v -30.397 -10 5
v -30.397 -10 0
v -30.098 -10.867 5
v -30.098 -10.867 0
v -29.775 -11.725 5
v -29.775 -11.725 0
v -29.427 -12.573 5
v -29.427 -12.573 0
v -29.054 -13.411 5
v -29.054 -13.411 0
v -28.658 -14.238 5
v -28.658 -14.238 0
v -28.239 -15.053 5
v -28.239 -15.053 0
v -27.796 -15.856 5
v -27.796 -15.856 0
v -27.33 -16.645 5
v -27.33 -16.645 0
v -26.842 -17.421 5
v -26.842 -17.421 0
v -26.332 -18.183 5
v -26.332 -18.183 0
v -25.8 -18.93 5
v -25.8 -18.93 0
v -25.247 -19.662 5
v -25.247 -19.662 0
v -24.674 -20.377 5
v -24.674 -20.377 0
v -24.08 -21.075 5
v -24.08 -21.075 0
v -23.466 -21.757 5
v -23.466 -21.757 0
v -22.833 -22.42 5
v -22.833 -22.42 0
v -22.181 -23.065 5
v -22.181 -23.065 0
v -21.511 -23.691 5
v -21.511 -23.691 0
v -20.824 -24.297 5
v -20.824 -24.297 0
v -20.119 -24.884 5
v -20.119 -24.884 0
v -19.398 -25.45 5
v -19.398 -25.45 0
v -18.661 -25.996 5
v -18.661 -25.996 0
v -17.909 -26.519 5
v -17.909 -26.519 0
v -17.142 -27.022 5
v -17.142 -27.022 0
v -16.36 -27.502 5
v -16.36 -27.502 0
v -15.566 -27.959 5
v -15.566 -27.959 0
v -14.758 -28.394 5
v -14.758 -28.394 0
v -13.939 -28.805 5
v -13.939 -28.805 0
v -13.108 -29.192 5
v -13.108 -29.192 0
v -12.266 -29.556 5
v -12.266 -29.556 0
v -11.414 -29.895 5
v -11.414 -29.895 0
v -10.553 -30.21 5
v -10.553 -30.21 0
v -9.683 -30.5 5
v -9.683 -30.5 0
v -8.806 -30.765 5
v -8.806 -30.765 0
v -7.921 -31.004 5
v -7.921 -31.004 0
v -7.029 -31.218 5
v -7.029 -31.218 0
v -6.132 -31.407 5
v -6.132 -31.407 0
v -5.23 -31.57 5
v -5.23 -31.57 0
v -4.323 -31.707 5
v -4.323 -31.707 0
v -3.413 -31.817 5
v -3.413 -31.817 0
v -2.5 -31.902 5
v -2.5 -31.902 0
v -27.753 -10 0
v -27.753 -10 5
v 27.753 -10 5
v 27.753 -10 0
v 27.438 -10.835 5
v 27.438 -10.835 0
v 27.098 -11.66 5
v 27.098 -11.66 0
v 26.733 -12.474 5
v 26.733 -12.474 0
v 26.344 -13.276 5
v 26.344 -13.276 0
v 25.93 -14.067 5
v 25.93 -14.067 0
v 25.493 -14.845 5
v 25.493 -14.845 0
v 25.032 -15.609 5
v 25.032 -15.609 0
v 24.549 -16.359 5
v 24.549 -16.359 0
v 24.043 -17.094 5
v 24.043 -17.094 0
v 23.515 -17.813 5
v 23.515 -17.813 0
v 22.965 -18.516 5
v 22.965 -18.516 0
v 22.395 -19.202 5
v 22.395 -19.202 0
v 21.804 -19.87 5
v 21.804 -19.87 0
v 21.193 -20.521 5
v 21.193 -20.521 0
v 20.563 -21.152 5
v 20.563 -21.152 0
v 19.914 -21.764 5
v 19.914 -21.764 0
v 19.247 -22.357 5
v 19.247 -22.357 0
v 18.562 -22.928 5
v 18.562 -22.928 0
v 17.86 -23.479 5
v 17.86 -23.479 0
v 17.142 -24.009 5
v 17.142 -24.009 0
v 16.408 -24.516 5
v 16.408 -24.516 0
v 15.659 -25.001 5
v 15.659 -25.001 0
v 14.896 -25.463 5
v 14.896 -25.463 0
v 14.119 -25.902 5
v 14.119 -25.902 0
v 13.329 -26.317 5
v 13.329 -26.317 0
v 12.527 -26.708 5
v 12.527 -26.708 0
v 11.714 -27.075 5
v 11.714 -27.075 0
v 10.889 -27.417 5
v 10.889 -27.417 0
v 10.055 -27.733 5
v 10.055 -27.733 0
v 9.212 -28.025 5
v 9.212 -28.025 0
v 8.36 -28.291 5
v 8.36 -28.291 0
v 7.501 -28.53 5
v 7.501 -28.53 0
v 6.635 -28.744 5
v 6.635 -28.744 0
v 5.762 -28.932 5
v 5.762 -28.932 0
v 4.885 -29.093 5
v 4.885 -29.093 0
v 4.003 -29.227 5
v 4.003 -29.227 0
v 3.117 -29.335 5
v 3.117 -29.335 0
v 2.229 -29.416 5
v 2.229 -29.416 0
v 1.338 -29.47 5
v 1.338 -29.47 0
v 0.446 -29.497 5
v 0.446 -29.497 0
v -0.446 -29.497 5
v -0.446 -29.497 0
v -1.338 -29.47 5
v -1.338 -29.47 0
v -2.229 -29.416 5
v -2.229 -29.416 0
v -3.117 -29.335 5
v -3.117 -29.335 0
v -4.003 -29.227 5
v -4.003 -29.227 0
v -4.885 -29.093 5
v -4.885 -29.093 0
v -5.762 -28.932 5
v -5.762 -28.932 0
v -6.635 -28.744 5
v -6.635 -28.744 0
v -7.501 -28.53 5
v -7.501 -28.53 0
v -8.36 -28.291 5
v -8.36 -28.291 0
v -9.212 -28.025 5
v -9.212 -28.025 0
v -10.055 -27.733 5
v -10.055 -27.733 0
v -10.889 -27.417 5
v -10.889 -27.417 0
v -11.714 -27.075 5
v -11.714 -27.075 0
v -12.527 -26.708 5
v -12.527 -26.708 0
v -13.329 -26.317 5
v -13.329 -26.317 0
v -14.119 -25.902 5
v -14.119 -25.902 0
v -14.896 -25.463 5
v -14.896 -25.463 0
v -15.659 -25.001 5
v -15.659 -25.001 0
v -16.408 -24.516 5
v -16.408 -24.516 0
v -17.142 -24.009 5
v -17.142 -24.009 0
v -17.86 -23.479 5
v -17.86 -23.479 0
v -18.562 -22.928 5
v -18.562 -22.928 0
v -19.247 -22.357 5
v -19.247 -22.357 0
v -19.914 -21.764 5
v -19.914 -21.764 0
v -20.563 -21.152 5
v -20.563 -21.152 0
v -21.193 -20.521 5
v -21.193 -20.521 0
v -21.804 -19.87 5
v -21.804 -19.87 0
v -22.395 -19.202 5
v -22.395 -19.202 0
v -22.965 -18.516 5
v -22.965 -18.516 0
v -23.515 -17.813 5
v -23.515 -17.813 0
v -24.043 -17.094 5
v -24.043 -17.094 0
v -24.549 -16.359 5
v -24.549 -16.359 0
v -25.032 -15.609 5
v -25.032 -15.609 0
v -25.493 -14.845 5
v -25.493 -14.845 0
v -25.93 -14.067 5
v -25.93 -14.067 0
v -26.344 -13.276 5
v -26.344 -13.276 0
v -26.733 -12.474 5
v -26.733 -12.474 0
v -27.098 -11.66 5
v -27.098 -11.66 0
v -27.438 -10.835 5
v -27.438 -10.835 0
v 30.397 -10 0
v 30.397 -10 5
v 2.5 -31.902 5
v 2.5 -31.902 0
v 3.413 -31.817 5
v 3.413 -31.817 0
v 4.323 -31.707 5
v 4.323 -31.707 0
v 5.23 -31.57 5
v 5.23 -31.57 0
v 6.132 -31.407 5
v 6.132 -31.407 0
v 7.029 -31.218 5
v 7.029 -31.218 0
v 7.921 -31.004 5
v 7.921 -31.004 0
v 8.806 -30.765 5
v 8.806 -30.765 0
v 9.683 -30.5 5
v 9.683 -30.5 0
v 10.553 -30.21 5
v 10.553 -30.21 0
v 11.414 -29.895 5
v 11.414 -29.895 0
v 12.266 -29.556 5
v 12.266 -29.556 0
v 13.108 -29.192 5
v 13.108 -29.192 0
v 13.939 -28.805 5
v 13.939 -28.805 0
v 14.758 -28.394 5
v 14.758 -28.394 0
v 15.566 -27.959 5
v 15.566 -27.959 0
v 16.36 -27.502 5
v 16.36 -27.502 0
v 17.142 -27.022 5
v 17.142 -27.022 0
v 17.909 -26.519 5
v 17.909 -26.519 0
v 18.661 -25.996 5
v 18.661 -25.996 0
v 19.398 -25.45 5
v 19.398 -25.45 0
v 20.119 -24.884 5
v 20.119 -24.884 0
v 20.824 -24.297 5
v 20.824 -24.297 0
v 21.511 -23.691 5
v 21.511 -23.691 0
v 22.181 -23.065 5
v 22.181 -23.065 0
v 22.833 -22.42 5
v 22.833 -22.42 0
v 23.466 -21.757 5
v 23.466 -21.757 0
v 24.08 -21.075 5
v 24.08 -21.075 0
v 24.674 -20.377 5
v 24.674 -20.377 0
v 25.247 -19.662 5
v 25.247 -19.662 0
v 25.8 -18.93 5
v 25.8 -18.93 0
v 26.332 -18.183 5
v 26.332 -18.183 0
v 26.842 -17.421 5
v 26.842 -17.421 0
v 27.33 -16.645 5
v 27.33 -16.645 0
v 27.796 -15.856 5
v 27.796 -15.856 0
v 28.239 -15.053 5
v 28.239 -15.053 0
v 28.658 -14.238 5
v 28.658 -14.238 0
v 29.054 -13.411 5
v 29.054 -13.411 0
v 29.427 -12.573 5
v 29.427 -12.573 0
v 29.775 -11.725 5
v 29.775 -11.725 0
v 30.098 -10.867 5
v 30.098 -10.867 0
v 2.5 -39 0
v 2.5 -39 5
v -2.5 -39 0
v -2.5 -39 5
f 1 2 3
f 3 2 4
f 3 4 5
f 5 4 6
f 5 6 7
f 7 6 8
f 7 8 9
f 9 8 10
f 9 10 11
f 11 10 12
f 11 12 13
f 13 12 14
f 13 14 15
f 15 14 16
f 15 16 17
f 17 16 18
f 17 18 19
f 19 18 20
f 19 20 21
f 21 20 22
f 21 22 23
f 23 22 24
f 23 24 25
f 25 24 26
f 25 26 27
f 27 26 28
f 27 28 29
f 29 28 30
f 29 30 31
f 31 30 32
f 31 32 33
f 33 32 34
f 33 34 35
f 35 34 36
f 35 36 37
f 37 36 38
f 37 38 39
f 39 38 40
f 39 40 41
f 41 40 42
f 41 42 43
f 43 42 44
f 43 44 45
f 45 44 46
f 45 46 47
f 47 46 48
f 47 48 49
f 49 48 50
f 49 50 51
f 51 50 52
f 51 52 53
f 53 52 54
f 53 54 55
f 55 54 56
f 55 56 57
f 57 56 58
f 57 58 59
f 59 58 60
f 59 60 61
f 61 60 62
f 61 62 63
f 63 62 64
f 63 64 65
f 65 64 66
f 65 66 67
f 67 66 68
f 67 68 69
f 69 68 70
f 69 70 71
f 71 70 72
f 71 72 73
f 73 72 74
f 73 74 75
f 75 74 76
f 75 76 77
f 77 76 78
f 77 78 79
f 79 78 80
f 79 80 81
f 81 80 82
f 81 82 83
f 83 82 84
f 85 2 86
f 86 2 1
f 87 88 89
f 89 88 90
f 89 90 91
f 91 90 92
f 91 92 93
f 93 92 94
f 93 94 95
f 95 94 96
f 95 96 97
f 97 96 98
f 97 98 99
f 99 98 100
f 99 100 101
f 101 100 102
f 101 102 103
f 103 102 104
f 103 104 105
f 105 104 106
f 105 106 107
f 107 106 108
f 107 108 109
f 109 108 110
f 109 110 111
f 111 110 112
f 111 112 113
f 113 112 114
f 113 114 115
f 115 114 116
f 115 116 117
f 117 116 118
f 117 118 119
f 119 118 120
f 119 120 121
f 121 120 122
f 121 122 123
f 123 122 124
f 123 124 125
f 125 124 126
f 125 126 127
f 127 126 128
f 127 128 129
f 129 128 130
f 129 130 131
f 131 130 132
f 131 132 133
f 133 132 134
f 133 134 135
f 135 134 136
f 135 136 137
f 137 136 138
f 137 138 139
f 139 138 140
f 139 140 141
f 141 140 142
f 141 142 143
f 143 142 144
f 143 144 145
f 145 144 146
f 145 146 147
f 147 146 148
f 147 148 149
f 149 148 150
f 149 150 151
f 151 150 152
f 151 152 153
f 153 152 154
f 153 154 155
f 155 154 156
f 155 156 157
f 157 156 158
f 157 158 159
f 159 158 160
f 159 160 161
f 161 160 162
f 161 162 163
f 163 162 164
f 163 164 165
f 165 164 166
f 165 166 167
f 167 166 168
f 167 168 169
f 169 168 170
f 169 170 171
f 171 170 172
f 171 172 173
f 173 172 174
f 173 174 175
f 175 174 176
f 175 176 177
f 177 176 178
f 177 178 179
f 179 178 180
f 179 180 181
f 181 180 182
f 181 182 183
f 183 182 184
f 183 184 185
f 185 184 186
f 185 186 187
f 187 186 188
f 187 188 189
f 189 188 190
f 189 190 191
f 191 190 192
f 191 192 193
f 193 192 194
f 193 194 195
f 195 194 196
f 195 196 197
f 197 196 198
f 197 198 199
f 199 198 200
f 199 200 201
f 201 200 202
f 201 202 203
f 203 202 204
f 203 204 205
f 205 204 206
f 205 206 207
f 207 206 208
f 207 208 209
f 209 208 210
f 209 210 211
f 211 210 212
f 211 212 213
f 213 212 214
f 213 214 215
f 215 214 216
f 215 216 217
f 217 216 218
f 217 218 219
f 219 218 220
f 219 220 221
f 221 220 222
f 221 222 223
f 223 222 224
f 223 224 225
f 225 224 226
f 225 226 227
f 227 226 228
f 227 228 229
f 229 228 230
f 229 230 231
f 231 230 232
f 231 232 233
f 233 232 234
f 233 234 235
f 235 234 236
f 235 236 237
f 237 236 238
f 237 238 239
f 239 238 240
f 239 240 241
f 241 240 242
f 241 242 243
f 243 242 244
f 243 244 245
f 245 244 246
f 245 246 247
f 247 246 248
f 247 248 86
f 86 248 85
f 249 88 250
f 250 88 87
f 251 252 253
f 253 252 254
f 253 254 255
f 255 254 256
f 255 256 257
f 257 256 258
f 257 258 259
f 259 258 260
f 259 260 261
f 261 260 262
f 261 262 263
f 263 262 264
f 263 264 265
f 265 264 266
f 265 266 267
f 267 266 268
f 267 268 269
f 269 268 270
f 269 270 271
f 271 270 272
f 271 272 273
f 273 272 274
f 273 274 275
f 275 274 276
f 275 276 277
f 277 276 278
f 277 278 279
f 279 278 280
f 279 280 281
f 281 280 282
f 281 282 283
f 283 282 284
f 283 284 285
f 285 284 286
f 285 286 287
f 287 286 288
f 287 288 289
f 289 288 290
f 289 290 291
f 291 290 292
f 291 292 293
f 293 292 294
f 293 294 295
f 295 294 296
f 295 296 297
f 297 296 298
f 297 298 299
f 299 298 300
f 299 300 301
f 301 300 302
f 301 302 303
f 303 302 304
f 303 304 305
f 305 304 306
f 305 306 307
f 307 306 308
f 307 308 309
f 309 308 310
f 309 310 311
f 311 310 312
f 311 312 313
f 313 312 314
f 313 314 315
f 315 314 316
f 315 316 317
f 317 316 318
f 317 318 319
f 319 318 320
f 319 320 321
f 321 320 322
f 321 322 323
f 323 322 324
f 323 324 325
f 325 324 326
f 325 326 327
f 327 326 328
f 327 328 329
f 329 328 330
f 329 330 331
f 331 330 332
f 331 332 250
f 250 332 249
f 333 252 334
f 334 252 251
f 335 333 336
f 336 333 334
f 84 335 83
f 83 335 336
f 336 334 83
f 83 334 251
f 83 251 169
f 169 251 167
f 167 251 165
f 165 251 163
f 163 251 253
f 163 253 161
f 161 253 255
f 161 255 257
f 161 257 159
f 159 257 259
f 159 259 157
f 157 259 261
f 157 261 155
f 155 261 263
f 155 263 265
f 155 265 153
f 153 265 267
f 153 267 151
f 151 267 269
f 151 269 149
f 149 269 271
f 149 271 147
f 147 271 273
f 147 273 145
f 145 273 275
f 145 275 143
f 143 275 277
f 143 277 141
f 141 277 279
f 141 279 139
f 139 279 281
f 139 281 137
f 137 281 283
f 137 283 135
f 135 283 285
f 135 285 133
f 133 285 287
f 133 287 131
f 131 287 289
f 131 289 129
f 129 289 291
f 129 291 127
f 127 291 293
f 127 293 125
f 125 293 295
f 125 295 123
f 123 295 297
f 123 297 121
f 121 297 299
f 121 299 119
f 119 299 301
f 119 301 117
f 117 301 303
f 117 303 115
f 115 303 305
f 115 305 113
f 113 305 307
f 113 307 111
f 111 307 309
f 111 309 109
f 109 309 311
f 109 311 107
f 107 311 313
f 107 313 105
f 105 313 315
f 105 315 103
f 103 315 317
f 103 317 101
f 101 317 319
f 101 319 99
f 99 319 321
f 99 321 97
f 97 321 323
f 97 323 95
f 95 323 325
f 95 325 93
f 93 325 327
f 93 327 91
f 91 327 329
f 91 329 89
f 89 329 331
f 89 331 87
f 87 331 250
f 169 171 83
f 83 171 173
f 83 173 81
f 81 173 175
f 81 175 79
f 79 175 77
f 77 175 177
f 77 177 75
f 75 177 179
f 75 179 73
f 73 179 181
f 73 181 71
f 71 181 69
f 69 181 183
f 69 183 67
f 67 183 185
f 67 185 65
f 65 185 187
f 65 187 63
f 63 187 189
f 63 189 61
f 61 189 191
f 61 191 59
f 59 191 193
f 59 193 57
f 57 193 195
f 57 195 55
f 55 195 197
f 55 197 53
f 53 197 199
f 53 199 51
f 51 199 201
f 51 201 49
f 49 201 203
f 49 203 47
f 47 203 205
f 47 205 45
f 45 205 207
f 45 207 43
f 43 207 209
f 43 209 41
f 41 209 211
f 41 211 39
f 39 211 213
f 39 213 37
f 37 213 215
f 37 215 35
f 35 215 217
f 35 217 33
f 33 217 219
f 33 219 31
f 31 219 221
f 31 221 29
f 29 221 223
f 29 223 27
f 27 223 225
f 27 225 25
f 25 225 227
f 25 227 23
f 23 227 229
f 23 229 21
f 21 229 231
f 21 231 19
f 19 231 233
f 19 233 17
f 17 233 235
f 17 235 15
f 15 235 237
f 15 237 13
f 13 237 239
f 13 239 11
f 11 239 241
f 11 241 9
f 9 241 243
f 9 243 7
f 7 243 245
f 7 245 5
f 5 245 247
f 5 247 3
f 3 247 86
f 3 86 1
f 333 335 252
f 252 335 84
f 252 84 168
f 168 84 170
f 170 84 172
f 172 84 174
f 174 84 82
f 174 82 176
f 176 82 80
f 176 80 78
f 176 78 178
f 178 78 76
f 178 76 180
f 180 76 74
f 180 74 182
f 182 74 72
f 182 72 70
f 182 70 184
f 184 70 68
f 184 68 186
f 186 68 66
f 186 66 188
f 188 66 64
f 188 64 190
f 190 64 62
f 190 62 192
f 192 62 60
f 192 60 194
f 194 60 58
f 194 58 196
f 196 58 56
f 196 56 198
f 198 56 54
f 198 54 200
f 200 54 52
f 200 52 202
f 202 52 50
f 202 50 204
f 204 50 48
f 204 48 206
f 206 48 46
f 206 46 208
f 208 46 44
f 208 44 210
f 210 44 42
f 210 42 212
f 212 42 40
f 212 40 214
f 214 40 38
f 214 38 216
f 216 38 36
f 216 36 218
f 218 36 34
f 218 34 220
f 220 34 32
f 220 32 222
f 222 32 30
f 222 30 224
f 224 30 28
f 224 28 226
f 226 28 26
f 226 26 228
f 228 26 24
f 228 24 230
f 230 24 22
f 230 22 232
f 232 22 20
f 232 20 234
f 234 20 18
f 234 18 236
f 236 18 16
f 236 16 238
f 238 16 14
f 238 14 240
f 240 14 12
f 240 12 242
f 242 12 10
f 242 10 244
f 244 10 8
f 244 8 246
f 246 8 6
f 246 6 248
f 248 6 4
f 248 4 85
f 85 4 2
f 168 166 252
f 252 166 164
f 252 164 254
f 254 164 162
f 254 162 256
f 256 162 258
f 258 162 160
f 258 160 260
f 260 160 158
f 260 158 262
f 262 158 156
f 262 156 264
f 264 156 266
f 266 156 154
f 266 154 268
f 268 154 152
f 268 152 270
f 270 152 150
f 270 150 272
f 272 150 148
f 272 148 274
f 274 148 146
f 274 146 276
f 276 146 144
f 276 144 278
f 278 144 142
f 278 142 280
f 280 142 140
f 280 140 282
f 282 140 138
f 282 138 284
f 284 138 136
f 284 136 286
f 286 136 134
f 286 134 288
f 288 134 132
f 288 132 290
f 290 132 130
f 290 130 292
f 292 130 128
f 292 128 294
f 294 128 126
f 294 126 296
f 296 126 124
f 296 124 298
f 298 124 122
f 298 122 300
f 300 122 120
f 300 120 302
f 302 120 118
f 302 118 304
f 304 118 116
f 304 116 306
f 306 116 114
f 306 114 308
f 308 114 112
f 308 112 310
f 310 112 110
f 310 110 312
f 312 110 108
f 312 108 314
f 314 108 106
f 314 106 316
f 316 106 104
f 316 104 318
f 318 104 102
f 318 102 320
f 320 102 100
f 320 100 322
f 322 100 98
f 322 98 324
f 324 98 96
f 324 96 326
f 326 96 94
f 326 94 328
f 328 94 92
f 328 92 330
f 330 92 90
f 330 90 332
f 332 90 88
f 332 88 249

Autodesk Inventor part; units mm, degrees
ref_plane "YZ Plane" through (0, 0, 0) normal (1, 0, 0) x (0, 1, 0)
ref_plane "XZ Plane" through (0, 0, 0) normal (0, 1, 0) x (-1, 0, 0)
ref_plane "XY Plane" through (0, 0, 0) normal (0, 0, 1) x (1, 0, 0)
sketch "Sketch1" plane through (0, 0, 0) normal (0, 0, 1) x (1, 0, 0)
  arc A0 (-25.4018, -15) -> (25.4018, -15) centre (0, 0) ccw
  line L0 (2.5, -32) -> (2.5, -39)
  line L1 (2.5, -39) -> (-2.5, -39)
  line L2 (-2.5, -39) -> (-2.5, -32)
  line L3 (-2.5, -32) -> (-2.5, -31.9022)
  line L4 (2.5, -32) -> (2.5, -31.9022)
  arc A1 (-28.2666, -15) -> (-2.5, -31.9022) centre (0, 0) ccw
  arc A2 (2.5, -31.9022) -> (28.2666, -15) centre (0, 0) ccw
  arc A3 (-27.7534, -10) -> (27.7534, -10) centre (0, 0) ccw
  line L5 (-27.7534, -10) -> (-30.3974, -10)
  line L6 (27.7534, -10) -> (30.3974, -10)
  arc A4 (-30.3974, -10) -> (-2.5, -31.9022) centre (0, 0) ccw
  arc A5 (2.5, -31.9022) -> (30.3974, -10) centre (0, 0) ccw
  point P0 (25.4018, -15)
  point P1 (-28.2666, -15)
  dimension "d43" = 5
  dimension "d64" = 7
extrude "Extrusion6" add sketch "Sketch1" along normal blind 5
properties part number "Clip_TestFitV1"
